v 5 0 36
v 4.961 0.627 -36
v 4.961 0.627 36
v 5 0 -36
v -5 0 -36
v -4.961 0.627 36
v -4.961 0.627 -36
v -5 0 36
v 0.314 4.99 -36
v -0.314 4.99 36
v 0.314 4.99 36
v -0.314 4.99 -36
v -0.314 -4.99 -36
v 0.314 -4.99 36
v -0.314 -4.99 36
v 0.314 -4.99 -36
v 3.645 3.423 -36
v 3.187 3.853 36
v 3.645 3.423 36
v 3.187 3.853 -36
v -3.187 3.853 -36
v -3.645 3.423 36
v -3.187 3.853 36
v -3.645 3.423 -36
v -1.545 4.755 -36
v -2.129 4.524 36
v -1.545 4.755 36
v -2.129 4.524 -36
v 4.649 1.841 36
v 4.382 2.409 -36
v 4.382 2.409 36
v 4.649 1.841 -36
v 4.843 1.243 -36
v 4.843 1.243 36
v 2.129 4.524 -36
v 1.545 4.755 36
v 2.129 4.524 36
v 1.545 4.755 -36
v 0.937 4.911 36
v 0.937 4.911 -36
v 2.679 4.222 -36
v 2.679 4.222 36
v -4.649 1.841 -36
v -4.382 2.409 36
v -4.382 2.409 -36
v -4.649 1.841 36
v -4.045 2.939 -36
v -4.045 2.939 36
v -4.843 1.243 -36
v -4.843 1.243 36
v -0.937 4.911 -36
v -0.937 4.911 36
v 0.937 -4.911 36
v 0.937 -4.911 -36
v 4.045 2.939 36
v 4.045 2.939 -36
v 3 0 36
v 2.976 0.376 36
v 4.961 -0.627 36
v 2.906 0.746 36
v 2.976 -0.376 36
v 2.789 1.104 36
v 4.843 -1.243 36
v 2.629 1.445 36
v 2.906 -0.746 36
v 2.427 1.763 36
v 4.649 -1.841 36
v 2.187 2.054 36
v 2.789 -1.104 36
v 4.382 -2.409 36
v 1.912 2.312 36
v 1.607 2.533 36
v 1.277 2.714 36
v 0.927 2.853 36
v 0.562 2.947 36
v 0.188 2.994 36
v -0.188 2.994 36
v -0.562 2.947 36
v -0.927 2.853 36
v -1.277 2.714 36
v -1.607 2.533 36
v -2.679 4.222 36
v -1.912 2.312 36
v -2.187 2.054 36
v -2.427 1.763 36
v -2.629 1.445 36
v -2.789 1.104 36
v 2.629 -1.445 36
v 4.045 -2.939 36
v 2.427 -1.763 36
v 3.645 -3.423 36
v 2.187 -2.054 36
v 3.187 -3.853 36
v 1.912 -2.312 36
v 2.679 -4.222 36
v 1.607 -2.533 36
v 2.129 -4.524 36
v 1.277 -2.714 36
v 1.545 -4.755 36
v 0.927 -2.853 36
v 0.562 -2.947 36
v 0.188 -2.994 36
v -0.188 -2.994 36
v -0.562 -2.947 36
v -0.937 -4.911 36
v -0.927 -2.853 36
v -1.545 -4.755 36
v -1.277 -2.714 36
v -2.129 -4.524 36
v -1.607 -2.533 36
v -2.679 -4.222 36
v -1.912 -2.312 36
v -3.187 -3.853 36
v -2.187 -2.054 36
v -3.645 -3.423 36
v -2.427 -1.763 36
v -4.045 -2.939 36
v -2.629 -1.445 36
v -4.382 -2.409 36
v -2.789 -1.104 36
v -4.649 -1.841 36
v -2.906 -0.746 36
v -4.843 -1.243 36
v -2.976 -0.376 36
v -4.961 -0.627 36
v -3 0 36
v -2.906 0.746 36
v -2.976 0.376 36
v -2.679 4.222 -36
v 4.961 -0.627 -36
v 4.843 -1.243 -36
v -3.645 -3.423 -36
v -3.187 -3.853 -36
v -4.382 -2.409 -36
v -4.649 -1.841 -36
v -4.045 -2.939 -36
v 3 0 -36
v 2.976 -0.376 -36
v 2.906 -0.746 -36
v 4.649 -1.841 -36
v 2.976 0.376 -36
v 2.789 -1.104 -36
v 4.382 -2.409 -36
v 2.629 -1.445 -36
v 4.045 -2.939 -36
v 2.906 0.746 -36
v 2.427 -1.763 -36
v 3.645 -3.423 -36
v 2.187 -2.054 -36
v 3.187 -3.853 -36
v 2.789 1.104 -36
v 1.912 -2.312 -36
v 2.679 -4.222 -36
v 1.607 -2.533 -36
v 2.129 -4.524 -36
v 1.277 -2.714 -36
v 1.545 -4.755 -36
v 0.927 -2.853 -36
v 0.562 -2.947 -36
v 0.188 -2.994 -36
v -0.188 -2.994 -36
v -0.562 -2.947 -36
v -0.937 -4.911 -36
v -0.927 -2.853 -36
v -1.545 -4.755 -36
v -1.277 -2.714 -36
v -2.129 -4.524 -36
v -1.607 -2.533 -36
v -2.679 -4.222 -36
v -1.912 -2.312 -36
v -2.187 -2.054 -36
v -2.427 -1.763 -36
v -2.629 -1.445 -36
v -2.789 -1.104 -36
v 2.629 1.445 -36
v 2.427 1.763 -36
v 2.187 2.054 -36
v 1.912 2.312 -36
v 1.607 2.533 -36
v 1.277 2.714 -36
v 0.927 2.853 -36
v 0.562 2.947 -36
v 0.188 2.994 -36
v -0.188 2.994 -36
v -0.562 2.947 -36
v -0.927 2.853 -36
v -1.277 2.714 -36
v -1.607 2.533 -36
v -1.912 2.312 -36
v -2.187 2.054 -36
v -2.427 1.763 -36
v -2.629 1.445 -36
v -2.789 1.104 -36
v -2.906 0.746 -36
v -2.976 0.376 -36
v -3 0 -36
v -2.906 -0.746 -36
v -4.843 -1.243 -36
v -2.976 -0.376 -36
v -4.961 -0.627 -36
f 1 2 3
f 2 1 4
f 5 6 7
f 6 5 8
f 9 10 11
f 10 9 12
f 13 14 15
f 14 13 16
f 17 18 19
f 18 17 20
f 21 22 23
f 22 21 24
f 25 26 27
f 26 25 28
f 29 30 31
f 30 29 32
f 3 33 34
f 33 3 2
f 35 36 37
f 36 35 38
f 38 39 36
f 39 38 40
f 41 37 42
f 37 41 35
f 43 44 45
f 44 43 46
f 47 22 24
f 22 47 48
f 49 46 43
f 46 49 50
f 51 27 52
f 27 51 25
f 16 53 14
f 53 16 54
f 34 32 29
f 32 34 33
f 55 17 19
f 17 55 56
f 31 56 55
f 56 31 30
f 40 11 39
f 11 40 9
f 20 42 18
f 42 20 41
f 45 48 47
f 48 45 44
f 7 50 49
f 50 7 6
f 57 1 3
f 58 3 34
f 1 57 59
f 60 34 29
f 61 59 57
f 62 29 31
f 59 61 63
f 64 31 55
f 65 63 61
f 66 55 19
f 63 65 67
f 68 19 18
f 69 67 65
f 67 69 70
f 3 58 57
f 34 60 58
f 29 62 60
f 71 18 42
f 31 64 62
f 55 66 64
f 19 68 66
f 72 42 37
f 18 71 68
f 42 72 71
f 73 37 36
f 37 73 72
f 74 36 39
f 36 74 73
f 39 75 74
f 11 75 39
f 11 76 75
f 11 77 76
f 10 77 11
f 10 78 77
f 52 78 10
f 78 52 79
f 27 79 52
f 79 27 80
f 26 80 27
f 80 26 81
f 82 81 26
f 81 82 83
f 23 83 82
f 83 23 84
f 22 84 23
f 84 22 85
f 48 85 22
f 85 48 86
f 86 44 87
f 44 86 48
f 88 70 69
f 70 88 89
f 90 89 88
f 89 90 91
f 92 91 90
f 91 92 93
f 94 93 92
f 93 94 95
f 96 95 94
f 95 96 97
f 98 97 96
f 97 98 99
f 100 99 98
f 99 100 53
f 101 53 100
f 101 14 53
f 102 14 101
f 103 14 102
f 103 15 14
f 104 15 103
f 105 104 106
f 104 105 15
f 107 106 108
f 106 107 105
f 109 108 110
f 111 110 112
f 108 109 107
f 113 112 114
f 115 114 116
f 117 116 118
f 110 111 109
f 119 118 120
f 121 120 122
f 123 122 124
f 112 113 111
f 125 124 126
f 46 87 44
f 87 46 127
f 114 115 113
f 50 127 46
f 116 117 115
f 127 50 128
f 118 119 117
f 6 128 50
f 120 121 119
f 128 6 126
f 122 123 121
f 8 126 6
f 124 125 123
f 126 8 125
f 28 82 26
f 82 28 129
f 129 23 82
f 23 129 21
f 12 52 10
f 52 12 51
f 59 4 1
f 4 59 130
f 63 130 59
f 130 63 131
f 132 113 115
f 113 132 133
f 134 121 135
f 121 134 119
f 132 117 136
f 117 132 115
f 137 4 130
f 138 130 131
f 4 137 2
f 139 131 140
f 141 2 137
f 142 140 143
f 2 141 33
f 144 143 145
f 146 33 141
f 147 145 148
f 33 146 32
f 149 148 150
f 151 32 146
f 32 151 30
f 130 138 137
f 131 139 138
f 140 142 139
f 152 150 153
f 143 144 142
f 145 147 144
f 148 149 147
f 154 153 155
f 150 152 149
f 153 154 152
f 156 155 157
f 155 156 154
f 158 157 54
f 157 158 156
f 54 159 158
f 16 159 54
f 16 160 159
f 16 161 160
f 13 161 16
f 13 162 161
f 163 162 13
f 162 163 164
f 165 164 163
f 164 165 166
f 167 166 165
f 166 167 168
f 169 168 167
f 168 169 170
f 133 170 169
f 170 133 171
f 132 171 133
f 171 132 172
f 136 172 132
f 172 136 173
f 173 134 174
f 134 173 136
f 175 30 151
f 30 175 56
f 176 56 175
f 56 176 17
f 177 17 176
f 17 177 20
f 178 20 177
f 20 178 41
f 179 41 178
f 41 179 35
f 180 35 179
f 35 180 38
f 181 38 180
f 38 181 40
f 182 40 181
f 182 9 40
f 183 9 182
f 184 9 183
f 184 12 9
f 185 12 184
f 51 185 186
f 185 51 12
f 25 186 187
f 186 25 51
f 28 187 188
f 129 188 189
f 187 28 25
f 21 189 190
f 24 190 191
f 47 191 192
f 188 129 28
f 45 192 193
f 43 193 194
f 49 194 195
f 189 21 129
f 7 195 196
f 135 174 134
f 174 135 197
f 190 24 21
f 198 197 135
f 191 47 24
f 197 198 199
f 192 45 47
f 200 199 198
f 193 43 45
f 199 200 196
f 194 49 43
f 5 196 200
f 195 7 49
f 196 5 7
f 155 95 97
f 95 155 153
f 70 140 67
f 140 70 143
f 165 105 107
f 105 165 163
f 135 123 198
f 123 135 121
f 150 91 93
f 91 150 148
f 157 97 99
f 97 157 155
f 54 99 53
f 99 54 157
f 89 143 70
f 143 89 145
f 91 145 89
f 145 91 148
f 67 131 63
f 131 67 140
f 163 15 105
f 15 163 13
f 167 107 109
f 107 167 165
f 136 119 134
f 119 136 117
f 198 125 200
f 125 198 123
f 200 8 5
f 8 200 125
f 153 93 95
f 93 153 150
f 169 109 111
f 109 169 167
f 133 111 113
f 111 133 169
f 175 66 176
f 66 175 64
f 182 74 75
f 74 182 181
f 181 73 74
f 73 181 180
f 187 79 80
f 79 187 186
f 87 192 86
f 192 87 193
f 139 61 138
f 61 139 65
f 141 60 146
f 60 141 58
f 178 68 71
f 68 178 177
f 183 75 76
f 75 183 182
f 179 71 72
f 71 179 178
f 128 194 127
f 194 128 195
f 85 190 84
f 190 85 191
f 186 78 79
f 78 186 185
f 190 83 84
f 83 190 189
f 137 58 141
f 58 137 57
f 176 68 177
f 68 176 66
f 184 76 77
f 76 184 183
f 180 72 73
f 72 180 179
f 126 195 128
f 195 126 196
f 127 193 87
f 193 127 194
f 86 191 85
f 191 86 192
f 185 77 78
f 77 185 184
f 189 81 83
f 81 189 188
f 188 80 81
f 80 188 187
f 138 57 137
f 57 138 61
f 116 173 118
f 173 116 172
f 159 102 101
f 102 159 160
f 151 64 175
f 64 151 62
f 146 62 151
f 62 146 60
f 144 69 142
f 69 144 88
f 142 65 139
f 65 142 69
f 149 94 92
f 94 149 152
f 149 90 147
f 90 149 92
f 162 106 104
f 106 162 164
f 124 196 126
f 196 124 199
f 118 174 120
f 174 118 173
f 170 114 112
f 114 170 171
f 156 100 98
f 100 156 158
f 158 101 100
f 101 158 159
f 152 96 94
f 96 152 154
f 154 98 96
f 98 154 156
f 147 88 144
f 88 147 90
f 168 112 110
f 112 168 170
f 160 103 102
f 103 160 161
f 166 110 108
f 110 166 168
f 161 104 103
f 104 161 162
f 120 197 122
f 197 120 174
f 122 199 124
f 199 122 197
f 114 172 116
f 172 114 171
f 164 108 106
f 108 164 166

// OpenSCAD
$fn = 50;


difference() {
	union() {
		translate(v = [0, 0, -36.0000000000]) {
			cylinder(h = 72, r = 5.0000000000);
		}
	}
	union() {
		translate(v = [0, 0, -100.0000000000]) {
			cylinder(h = 200, r = 3);
		}
	}
}
